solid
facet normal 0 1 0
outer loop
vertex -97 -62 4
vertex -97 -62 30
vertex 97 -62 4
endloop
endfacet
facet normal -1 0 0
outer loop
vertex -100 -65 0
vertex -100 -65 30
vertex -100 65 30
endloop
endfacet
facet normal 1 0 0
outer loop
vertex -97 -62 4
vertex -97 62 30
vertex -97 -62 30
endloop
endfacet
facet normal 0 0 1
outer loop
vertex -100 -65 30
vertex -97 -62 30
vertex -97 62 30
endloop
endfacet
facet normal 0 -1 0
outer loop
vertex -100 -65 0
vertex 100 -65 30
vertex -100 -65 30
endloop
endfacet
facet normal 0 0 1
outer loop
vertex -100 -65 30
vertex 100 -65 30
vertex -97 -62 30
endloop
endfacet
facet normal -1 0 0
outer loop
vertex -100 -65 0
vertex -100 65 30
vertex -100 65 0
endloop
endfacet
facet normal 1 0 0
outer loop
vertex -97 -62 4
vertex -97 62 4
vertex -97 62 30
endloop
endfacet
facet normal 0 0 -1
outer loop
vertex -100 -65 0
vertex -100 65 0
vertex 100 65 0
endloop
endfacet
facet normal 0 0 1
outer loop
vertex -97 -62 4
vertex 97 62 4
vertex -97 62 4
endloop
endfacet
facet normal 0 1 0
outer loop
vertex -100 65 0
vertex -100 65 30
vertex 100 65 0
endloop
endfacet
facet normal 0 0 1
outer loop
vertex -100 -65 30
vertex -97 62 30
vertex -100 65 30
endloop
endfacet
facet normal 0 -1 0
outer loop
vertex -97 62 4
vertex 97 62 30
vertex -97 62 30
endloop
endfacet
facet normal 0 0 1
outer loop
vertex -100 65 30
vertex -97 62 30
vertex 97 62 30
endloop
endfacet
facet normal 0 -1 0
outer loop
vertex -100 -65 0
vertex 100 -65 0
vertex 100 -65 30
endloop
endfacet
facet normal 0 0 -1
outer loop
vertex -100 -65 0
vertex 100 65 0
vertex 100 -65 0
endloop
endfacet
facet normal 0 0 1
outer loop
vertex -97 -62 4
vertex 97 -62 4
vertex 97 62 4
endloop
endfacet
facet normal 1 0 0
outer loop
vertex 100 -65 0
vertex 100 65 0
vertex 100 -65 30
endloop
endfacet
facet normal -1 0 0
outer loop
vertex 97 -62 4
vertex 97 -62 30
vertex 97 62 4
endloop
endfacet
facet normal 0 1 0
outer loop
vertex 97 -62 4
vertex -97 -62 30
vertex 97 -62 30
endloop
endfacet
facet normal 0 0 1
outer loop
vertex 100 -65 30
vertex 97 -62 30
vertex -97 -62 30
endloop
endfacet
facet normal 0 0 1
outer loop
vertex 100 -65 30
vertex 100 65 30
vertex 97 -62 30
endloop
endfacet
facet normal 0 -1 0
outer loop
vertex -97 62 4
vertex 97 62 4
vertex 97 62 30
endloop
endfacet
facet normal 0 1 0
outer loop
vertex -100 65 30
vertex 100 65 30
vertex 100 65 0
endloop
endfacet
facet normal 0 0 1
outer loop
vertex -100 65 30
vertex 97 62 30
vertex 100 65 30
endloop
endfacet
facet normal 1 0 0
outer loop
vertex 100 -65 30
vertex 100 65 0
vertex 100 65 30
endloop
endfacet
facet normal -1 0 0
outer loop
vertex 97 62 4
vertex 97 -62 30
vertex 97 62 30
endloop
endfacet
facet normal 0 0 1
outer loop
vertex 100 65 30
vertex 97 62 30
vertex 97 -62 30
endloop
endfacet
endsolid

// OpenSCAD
// file: design_params.scad
/*
 * fika - shared design parameters, the single source of truth.
 *
 * Read by every cad/*.scad (include <design_params.scad>) and re-parsed by
 * scripts/design_params.py for scripts/check_layout.py and
 * tools/energy_budget.py, so a value changed here flips the whole pipeline
 * at once. scripts/check_params.py fails the build if any other .scad
 * shadows a name defined here.
 *
 * Keep every line a plain literal: name = value; (numbers, booleans, flat
 * vectors). No arithmetic - derived values are computed by the consumers.
 *
 * Units: mm, deg C, W, V, A, bar, g unless noted.
 * Coordinates: origin at the center of the base plate top surface.
 * X right, Y toward the back, Z up. Positions are component reference
 * points noted per name.
 */

// frame envelope (outer dimensions, CNC aluminum plates)
frame_w = 310;
frame_d = 320;
frame_h = 400;          // side plate height; sides run z -8..392
frame_plate_t = 8;      // structural plates: sides, base, rear, top
mount_plate_t = 6;      // group mount plate
mount_plate_d = 90;     // group mount plate depth (y extent)
mount_plate_y = 20;     // group mount plate front edge

// boiler (single, dual use, copper shell; position = bottom center)
boiler_od = 102;
boiler_h = 160;
boiler_wall = 2;
boiler_x = -50;
boiler_y = 180;
boiler_z = 150;
boiler_volume_l = 1.0;  // nominal fill, used by the energy budget

// heater and mains
heater_power_w = 1400;
mains_voltage = 230;
mains_breaker_a = 10;
brew_temp_c = 93;
steam_temp_c = 125;
max_temp_c = 135;       // firmware hard cutoff; mechanical cutoff above this

// pump: rotary vane head + mains motor, axis along X at the rear base
// (position = axis center; assembly centered on pump_x)
pump_head_d = 42;
pump_head_l = 105;
motor_d = 100;
motor_l = 160;
pump_x = 0;
pump_y = 255;
pump_z = 55;
opv_bar = 9;            // pump bypass back to reservoir
relief_bar = 12;        // boiler mechanical safety relief valve

// brew group and cup zone (position = group axis at tray center)
group_od = 70;
group_h = 90;
group_x = 0;
group_y = 65;
cup_clearance_h = 95;   // spout height above the tray top
cup_max_d = 90;

// drip tray with load cell scale (tray_z = top of load cell + gap)
tray_w = 200;
tray_d = 130;
tray_h = 30;
tray_y = 15;            // tray front edge
tray_z = 13;
loadcell_l = 55;        // TAL220-class bar load cell
loadcell_w = 12.7;
loadcell_h = 12.7;
scale_capacity_g = 1000;

// water tank (position = front face / bottom)
tank_w = 200;
tank_d = 55;
tank_h = 200;
tank_y = 245;
tank_z = 150;

// plumbing, copper lines (suction from the tank is larger bore)
brew_line_od = 6;
brew_line_wall = 1;
steam_line_od = 6;
suction_line_od = 8;

// fasteners (one bolt size for every frame joint, M5 with clearance)
bolt_hole_d = 5.3;

// layout rules (scripts/check_layout.py)
clearance = 10;         // minimum gap between component envelopes
clearance_wall = 5;     // minimum gap between components and frame plates
// main file
/*
 * fika - drip tray and load cell.
 * Purpose: layout placeholder for the drip tray that doubles as the cup
 *          scale platform. Tray origin at the center of its footprint,
 *          bottom at z 0. loadcell_bar() is the TAL220-class bar the tray
 *          sits on, placed by the assembly between base plate and tray.
 * Material: printed tray for the foundation, load cell off the shelf
 * Fabrication: print
 */

include <design_params.scad>

$fn = 60;

module drip_tray() {
    color("#333333") difference() {
        translate([-tray_w / 2, -tray_d / 2, 0])
            cube([tray_w, tray_d, tray_h]);
        translate([-tray_w / 2 + 3, -tray_d / 2 + 3, 4])
            cube([tray_w - 6, tray_d - 6, tray_h]);
    }
}

// cots: bar load cell under the tray center
module loadcell_bar() {
    color("#999999") translate([-loadcell_l / 2, -loadcell_w / 2, 0])
        cube([loadcell_l, loadcell_w, loadcell_h]);
}

drip_tray();
